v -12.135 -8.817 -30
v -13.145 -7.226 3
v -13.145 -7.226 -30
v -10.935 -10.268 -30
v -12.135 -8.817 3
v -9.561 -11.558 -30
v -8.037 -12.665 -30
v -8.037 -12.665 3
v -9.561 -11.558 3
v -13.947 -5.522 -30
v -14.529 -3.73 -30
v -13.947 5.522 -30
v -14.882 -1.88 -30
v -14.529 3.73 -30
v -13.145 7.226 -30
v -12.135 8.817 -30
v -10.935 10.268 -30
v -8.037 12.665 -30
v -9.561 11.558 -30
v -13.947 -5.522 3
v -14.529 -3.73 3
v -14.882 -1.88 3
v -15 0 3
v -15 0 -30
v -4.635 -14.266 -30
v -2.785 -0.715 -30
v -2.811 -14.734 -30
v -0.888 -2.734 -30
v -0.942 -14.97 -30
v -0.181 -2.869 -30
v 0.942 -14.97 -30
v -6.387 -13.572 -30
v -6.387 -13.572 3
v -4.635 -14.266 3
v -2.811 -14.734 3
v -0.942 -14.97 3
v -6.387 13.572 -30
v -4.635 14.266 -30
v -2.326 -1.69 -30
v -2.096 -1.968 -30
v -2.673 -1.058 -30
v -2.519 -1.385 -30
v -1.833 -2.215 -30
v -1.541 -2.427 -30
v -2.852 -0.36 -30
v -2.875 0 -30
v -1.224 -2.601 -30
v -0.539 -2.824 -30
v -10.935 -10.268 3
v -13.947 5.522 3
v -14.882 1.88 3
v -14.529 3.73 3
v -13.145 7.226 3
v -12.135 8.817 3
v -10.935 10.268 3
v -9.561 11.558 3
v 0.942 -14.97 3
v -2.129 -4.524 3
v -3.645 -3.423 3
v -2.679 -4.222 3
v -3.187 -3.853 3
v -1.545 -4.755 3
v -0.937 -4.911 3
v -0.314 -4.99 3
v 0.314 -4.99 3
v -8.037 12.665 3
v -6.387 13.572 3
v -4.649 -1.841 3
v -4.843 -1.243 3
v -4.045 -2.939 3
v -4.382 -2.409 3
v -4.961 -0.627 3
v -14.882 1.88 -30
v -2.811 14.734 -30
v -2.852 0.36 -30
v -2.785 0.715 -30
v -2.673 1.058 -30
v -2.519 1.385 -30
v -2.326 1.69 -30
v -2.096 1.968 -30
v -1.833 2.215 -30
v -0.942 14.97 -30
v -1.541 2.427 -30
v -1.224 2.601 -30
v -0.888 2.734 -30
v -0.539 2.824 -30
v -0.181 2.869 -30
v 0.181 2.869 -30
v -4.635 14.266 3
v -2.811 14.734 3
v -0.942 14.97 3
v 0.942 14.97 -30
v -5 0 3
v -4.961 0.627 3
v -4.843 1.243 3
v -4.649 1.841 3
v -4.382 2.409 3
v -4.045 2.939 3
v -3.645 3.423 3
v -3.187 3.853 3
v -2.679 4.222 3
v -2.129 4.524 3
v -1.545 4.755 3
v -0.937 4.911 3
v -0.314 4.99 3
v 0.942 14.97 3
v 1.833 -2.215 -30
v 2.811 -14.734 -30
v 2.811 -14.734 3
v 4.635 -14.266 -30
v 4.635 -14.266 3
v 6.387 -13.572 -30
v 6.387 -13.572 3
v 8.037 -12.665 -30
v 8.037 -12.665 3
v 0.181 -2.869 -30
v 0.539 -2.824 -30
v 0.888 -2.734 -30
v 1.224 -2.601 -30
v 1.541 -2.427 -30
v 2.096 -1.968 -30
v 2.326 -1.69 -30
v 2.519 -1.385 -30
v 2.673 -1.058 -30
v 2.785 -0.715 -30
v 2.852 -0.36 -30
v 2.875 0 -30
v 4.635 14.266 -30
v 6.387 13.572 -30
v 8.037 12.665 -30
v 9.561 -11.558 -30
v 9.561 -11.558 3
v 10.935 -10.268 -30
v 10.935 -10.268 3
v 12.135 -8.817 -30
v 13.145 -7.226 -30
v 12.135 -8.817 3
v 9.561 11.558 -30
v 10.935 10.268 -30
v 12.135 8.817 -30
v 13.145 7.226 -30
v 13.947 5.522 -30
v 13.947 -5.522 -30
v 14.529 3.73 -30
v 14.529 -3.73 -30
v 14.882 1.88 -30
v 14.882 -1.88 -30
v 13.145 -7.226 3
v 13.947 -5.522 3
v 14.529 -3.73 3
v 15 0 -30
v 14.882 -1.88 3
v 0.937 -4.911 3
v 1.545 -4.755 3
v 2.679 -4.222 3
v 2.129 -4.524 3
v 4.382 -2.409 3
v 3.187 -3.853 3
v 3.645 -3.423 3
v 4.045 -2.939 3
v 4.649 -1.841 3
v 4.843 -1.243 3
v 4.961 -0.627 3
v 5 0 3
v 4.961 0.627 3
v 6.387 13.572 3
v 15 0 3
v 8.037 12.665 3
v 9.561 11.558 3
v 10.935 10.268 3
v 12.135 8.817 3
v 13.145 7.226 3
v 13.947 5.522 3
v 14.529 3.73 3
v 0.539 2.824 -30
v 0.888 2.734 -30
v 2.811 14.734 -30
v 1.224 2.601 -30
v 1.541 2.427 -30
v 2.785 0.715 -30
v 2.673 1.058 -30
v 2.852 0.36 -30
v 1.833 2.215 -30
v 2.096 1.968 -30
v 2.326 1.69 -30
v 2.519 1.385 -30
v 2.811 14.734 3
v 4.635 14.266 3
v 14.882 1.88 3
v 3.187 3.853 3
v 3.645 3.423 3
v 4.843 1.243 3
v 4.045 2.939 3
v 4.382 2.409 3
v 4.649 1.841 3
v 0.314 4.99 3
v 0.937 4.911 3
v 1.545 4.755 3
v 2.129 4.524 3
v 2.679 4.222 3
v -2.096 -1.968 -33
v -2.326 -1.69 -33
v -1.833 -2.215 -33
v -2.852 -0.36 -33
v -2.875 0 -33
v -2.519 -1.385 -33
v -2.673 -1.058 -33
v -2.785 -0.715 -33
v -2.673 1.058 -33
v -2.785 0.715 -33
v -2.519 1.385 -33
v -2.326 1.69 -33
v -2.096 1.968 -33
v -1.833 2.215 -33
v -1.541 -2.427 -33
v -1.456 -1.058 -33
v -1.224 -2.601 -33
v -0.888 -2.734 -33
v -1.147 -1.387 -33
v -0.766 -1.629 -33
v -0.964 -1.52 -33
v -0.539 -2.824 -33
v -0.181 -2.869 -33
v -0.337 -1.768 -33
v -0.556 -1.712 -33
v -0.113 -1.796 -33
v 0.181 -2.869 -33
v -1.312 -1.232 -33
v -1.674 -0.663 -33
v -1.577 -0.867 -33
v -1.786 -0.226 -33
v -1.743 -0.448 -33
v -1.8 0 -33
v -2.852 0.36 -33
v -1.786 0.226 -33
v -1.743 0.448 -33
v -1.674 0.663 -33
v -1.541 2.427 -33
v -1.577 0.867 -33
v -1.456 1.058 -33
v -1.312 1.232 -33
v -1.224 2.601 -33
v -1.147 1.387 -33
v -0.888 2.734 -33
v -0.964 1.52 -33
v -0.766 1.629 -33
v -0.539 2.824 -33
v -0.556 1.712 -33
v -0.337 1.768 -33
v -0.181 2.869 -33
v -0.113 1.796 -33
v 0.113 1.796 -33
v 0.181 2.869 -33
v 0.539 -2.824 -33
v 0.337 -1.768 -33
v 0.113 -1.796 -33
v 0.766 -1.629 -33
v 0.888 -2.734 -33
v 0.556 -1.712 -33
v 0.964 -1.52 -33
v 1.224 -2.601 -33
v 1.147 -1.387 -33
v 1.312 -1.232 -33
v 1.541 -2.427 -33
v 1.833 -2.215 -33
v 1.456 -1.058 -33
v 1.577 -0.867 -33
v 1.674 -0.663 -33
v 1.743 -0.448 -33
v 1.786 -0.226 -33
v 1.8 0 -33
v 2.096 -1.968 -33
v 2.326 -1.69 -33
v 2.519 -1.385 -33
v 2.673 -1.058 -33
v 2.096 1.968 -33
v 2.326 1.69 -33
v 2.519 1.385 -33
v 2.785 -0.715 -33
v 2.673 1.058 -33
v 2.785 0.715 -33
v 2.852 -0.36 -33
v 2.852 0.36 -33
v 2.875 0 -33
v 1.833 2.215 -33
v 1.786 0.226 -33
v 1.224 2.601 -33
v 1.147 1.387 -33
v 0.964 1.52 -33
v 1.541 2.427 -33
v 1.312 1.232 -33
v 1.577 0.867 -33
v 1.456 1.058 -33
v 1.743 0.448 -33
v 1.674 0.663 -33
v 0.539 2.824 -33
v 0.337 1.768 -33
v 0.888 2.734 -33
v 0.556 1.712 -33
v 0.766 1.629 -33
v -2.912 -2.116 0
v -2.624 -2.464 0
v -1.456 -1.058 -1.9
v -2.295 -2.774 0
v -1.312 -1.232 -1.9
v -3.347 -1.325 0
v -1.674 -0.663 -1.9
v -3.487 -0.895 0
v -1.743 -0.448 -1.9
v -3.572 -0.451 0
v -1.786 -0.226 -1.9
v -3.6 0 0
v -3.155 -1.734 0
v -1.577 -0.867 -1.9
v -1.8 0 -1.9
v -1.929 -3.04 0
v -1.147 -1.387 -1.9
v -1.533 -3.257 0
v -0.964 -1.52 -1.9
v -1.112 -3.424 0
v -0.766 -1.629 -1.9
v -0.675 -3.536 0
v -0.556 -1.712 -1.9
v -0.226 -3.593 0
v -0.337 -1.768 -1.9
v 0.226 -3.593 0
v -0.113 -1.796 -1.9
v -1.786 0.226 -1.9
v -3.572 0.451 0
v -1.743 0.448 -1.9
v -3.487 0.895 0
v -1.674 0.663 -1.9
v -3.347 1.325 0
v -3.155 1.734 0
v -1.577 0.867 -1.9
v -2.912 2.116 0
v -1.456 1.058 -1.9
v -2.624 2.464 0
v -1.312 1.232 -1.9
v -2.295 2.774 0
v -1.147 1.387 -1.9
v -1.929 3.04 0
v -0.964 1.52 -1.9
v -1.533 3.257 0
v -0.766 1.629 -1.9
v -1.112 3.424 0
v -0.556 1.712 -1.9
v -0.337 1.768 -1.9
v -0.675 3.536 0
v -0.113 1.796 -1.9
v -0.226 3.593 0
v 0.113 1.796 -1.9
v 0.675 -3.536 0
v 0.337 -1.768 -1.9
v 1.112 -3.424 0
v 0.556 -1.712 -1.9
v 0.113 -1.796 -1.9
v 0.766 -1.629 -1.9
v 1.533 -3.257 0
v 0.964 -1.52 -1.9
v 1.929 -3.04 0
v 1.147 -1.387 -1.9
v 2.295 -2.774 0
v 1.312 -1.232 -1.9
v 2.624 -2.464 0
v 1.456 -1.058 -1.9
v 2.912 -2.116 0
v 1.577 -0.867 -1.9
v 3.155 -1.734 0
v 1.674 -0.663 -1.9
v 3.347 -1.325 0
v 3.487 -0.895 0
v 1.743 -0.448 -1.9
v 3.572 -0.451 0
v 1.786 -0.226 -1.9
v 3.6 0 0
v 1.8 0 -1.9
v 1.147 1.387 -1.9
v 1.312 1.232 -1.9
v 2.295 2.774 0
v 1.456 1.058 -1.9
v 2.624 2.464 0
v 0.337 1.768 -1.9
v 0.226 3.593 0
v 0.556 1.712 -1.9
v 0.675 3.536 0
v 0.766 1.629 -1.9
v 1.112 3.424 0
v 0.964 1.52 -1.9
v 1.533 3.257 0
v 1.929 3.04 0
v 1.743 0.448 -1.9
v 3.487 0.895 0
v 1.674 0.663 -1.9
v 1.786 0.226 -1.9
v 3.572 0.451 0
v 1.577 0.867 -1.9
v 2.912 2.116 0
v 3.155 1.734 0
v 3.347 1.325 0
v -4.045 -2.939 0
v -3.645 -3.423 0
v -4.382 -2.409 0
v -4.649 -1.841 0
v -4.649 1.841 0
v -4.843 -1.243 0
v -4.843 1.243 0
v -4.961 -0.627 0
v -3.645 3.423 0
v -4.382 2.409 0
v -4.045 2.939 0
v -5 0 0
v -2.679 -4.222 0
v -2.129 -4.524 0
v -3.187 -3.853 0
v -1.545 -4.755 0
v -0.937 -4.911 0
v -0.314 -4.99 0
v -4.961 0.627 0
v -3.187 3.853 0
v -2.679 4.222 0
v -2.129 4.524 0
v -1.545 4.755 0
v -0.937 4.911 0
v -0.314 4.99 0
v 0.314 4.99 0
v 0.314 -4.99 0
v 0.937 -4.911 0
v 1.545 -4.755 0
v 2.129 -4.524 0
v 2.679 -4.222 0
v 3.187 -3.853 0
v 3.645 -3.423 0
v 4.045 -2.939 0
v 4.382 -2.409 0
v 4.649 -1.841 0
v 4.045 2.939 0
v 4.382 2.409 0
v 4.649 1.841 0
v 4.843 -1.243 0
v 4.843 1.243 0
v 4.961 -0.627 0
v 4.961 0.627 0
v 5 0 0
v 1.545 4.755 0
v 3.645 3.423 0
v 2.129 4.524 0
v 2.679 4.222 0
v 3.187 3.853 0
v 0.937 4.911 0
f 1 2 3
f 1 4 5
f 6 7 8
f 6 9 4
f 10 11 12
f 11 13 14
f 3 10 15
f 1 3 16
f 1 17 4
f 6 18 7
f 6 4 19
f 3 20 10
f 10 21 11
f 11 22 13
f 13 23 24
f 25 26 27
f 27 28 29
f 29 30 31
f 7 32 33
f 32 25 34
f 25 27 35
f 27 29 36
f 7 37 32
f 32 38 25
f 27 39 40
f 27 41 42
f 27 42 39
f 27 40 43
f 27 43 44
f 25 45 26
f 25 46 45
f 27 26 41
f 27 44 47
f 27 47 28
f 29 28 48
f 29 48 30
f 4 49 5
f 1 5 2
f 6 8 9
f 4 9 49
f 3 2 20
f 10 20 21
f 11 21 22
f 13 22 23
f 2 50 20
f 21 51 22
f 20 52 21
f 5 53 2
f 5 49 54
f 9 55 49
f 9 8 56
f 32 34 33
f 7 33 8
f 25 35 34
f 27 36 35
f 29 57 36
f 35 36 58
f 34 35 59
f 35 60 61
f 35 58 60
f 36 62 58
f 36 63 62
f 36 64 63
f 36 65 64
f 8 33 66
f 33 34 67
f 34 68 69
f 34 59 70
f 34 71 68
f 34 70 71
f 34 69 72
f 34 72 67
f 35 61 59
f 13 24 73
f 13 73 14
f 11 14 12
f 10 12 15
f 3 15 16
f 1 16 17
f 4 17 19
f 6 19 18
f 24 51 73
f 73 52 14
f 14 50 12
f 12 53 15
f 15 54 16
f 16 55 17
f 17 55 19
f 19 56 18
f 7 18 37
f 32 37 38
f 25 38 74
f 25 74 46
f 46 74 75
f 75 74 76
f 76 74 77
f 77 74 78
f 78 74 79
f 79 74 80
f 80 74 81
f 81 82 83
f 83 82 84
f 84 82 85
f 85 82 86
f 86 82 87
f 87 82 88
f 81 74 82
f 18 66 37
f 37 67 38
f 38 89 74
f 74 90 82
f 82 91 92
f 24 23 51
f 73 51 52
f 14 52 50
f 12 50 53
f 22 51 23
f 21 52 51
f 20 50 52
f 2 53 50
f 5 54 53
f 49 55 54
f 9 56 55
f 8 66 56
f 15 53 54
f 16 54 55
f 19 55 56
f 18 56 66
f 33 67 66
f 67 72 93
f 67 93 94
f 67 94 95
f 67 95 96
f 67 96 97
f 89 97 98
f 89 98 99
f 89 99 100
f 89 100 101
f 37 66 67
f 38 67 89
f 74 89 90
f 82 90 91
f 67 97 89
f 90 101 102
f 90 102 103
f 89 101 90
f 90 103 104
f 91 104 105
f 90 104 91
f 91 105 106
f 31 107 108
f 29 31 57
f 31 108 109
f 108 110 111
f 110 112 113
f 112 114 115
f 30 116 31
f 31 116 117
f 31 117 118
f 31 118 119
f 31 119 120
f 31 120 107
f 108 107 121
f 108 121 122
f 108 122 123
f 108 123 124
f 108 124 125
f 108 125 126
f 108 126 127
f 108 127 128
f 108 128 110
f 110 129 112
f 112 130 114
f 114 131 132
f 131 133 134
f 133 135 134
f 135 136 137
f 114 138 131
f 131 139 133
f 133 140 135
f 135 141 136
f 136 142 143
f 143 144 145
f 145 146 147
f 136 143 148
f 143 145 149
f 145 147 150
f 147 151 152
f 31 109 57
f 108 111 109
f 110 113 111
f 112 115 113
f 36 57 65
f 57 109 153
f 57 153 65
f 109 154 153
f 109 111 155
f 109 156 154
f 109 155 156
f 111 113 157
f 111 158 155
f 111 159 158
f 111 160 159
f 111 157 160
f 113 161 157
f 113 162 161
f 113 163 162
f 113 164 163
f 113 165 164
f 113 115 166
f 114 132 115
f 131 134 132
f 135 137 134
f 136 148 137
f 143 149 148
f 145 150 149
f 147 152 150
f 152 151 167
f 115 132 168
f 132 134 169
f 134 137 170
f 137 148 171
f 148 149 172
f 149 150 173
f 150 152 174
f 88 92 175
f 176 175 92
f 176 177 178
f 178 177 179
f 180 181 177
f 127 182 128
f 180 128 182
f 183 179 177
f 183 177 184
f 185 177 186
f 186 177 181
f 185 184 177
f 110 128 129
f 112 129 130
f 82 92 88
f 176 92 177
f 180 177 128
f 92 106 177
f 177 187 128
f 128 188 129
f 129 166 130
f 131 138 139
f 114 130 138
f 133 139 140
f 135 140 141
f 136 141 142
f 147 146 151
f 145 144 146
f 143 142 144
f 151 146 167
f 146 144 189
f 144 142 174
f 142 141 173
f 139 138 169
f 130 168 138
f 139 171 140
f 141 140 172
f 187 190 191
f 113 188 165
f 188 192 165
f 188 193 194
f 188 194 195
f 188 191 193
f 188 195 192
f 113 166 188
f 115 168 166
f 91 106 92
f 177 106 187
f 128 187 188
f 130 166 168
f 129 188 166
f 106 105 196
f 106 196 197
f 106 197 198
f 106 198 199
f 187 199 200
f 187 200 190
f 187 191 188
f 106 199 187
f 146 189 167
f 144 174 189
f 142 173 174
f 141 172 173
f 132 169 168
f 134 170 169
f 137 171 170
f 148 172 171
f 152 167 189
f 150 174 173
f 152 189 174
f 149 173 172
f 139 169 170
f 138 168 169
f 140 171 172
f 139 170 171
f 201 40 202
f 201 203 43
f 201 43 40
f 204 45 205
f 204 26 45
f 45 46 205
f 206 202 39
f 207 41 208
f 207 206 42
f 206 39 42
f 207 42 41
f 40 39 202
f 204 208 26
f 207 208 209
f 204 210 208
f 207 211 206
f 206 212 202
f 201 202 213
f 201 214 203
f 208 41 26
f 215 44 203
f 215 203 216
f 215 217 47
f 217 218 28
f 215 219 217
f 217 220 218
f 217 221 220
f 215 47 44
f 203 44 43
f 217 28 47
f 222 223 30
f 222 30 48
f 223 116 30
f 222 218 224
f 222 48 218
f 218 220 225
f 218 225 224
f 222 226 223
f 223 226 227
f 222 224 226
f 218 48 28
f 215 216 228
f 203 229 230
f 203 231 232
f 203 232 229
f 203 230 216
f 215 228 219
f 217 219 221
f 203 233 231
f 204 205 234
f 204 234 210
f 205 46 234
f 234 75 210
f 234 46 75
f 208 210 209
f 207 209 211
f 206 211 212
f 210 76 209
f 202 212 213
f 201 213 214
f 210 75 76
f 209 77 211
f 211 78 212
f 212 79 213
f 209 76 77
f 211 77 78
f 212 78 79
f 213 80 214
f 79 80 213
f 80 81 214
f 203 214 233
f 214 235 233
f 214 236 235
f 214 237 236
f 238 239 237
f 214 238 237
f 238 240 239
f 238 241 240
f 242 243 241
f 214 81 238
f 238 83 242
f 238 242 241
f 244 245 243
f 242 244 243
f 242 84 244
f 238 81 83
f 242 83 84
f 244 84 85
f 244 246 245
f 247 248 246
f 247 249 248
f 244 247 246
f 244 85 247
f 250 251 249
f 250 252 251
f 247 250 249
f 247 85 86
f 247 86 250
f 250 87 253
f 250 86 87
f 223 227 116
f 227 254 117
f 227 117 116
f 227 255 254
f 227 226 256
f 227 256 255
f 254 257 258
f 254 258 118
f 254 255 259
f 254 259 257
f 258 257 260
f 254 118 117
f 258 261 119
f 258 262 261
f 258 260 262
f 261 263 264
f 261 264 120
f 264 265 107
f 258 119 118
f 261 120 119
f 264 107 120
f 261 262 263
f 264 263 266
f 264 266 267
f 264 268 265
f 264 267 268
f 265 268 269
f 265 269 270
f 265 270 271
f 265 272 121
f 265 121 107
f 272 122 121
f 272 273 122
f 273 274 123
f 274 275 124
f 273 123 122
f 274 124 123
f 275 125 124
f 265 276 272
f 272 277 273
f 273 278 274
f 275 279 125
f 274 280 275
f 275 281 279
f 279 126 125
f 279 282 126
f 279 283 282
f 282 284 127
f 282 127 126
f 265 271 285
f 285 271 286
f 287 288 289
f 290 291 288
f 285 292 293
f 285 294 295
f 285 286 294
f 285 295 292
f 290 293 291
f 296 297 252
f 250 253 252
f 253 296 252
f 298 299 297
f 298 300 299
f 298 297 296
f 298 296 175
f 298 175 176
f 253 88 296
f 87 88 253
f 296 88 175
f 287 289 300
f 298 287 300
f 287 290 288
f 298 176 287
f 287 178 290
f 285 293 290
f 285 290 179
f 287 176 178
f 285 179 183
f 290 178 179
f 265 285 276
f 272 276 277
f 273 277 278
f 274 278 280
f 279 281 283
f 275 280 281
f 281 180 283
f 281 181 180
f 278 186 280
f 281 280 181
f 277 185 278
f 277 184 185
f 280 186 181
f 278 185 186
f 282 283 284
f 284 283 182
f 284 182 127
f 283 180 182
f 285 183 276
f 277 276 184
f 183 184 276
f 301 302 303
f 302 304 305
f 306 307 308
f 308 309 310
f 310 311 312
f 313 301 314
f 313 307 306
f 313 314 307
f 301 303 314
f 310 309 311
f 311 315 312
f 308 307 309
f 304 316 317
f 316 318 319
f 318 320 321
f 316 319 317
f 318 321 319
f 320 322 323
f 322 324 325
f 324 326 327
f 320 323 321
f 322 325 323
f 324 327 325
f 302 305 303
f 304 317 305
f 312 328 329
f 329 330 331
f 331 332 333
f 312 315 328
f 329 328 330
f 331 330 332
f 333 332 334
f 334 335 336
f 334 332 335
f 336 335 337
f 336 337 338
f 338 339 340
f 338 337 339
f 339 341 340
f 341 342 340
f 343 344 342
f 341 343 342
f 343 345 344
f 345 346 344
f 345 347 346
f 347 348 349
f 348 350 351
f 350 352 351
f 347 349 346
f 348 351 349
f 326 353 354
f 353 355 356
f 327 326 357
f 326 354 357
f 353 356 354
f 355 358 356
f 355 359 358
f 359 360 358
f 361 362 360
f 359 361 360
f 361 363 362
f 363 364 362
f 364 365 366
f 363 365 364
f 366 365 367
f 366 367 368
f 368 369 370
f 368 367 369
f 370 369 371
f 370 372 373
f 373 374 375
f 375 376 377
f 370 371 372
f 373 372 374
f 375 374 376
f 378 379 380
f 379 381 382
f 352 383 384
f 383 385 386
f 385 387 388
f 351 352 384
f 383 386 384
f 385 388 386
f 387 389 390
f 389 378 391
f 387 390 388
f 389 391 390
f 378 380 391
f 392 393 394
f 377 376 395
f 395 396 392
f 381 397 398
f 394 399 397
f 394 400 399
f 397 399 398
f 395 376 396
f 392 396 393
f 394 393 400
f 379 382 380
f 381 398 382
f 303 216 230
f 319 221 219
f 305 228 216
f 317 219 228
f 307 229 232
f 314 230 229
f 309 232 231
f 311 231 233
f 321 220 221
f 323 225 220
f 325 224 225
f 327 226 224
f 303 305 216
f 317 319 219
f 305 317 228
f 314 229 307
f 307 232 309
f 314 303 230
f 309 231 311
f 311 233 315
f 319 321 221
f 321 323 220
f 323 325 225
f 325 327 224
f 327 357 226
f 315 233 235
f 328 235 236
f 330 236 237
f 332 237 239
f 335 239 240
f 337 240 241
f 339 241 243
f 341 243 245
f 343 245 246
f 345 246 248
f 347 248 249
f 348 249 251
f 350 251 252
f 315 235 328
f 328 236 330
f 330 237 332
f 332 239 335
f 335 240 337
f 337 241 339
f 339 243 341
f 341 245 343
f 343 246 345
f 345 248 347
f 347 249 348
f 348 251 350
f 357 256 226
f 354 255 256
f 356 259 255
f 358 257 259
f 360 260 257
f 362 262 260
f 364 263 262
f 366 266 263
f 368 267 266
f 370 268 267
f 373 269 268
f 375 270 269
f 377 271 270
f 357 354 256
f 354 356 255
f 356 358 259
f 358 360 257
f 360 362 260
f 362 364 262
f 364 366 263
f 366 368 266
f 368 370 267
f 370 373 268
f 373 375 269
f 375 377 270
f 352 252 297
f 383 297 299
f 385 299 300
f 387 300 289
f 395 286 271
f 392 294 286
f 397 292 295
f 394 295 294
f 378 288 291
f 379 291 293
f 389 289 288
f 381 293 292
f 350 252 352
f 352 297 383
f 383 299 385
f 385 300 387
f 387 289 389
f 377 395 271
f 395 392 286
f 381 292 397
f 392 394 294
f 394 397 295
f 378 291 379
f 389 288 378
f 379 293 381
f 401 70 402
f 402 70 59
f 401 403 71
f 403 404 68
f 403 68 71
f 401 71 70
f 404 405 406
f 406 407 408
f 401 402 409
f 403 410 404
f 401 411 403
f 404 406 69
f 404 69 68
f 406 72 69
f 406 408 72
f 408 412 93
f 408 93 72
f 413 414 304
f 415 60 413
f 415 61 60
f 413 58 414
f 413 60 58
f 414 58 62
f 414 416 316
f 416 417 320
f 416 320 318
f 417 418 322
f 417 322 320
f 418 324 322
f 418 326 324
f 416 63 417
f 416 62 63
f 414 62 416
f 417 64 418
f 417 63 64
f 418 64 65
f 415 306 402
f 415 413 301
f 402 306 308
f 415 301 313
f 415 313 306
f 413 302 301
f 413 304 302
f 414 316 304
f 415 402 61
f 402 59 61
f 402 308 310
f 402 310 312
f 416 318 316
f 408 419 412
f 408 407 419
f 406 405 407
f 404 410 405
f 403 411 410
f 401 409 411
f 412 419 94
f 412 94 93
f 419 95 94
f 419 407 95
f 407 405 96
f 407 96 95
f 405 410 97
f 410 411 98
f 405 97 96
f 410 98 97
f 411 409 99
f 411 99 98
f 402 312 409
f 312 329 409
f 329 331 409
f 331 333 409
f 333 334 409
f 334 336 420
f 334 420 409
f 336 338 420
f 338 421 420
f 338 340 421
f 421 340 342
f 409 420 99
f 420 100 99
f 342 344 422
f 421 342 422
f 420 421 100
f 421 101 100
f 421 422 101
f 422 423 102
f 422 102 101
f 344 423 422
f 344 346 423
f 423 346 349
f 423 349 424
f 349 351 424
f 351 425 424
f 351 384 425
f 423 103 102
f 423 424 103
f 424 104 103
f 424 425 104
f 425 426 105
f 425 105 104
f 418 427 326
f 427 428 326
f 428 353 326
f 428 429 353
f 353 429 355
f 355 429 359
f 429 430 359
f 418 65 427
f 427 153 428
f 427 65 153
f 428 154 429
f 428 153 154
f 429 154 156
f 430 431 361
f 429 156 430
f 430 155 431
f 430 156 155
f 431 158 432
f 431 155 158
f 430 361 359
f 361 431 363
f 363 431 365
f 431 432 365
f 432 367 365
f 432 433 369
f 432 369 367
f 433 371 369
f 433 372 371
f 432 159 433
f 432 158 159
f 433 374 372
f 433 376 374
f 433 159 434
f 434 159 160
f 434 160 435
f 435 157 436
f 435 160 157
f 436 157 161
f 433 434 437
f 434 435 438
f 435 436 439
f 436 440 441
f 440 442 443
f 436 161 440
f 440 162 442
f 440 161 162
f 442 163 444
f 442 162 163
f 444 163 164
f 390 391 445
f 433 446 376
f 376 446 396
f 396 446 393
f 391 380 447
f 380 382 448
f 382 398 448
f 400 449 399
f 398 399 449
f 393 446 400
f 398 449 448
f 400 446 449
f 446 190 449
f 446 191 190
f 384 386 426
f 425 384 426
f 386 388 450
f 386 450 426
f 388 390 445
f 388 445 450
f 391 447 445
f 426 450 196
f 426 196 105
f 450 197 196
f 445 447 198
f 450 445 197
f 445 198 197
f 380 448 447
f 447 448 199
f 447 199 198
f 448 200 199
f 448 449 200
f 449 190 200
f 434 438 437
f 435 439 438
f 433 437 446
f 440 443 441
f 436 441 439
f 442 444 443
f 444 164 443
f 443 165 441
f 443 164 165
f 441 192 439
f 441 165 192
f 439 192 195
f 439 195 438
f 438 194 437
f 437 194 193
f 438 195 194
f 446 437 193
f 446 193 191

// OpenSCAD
$fn = 50;

difference() {
	union() {
		translate(v = [0, 0, -30.0]) {
			cylinder(h = 33, r = 15.0);
		}
		#translate(v = [0, 0, -33.0]) {
			cylinder(h = 33, r = 2.875);
		}
	}
	union() {
		translate(v = [0, 0, 0]) {
			rotate(a = [0, 0, 0]) {
				difference() {
					union() {
						translate(v = [0, 0, -33.0]) {
							cylinder(h = 33, r = 1.5);
						}
						translate(v = [0, 0, -1.9]) {
							cylinder(h = 1.9, r1 = 1.8, r2 = 3.6);
						}
						translate(v = [0, 0, -33.0]) {
							cylinder(h = 33, r = 1.8);
						}
						translate(v = [0, 0, -33.0]) {
							cylinder(h = 33, r = 1.5);
						}
					}
					union();
				}
			}
		}
		#cylinder(h = 3, r = 5.0);
	}
}
